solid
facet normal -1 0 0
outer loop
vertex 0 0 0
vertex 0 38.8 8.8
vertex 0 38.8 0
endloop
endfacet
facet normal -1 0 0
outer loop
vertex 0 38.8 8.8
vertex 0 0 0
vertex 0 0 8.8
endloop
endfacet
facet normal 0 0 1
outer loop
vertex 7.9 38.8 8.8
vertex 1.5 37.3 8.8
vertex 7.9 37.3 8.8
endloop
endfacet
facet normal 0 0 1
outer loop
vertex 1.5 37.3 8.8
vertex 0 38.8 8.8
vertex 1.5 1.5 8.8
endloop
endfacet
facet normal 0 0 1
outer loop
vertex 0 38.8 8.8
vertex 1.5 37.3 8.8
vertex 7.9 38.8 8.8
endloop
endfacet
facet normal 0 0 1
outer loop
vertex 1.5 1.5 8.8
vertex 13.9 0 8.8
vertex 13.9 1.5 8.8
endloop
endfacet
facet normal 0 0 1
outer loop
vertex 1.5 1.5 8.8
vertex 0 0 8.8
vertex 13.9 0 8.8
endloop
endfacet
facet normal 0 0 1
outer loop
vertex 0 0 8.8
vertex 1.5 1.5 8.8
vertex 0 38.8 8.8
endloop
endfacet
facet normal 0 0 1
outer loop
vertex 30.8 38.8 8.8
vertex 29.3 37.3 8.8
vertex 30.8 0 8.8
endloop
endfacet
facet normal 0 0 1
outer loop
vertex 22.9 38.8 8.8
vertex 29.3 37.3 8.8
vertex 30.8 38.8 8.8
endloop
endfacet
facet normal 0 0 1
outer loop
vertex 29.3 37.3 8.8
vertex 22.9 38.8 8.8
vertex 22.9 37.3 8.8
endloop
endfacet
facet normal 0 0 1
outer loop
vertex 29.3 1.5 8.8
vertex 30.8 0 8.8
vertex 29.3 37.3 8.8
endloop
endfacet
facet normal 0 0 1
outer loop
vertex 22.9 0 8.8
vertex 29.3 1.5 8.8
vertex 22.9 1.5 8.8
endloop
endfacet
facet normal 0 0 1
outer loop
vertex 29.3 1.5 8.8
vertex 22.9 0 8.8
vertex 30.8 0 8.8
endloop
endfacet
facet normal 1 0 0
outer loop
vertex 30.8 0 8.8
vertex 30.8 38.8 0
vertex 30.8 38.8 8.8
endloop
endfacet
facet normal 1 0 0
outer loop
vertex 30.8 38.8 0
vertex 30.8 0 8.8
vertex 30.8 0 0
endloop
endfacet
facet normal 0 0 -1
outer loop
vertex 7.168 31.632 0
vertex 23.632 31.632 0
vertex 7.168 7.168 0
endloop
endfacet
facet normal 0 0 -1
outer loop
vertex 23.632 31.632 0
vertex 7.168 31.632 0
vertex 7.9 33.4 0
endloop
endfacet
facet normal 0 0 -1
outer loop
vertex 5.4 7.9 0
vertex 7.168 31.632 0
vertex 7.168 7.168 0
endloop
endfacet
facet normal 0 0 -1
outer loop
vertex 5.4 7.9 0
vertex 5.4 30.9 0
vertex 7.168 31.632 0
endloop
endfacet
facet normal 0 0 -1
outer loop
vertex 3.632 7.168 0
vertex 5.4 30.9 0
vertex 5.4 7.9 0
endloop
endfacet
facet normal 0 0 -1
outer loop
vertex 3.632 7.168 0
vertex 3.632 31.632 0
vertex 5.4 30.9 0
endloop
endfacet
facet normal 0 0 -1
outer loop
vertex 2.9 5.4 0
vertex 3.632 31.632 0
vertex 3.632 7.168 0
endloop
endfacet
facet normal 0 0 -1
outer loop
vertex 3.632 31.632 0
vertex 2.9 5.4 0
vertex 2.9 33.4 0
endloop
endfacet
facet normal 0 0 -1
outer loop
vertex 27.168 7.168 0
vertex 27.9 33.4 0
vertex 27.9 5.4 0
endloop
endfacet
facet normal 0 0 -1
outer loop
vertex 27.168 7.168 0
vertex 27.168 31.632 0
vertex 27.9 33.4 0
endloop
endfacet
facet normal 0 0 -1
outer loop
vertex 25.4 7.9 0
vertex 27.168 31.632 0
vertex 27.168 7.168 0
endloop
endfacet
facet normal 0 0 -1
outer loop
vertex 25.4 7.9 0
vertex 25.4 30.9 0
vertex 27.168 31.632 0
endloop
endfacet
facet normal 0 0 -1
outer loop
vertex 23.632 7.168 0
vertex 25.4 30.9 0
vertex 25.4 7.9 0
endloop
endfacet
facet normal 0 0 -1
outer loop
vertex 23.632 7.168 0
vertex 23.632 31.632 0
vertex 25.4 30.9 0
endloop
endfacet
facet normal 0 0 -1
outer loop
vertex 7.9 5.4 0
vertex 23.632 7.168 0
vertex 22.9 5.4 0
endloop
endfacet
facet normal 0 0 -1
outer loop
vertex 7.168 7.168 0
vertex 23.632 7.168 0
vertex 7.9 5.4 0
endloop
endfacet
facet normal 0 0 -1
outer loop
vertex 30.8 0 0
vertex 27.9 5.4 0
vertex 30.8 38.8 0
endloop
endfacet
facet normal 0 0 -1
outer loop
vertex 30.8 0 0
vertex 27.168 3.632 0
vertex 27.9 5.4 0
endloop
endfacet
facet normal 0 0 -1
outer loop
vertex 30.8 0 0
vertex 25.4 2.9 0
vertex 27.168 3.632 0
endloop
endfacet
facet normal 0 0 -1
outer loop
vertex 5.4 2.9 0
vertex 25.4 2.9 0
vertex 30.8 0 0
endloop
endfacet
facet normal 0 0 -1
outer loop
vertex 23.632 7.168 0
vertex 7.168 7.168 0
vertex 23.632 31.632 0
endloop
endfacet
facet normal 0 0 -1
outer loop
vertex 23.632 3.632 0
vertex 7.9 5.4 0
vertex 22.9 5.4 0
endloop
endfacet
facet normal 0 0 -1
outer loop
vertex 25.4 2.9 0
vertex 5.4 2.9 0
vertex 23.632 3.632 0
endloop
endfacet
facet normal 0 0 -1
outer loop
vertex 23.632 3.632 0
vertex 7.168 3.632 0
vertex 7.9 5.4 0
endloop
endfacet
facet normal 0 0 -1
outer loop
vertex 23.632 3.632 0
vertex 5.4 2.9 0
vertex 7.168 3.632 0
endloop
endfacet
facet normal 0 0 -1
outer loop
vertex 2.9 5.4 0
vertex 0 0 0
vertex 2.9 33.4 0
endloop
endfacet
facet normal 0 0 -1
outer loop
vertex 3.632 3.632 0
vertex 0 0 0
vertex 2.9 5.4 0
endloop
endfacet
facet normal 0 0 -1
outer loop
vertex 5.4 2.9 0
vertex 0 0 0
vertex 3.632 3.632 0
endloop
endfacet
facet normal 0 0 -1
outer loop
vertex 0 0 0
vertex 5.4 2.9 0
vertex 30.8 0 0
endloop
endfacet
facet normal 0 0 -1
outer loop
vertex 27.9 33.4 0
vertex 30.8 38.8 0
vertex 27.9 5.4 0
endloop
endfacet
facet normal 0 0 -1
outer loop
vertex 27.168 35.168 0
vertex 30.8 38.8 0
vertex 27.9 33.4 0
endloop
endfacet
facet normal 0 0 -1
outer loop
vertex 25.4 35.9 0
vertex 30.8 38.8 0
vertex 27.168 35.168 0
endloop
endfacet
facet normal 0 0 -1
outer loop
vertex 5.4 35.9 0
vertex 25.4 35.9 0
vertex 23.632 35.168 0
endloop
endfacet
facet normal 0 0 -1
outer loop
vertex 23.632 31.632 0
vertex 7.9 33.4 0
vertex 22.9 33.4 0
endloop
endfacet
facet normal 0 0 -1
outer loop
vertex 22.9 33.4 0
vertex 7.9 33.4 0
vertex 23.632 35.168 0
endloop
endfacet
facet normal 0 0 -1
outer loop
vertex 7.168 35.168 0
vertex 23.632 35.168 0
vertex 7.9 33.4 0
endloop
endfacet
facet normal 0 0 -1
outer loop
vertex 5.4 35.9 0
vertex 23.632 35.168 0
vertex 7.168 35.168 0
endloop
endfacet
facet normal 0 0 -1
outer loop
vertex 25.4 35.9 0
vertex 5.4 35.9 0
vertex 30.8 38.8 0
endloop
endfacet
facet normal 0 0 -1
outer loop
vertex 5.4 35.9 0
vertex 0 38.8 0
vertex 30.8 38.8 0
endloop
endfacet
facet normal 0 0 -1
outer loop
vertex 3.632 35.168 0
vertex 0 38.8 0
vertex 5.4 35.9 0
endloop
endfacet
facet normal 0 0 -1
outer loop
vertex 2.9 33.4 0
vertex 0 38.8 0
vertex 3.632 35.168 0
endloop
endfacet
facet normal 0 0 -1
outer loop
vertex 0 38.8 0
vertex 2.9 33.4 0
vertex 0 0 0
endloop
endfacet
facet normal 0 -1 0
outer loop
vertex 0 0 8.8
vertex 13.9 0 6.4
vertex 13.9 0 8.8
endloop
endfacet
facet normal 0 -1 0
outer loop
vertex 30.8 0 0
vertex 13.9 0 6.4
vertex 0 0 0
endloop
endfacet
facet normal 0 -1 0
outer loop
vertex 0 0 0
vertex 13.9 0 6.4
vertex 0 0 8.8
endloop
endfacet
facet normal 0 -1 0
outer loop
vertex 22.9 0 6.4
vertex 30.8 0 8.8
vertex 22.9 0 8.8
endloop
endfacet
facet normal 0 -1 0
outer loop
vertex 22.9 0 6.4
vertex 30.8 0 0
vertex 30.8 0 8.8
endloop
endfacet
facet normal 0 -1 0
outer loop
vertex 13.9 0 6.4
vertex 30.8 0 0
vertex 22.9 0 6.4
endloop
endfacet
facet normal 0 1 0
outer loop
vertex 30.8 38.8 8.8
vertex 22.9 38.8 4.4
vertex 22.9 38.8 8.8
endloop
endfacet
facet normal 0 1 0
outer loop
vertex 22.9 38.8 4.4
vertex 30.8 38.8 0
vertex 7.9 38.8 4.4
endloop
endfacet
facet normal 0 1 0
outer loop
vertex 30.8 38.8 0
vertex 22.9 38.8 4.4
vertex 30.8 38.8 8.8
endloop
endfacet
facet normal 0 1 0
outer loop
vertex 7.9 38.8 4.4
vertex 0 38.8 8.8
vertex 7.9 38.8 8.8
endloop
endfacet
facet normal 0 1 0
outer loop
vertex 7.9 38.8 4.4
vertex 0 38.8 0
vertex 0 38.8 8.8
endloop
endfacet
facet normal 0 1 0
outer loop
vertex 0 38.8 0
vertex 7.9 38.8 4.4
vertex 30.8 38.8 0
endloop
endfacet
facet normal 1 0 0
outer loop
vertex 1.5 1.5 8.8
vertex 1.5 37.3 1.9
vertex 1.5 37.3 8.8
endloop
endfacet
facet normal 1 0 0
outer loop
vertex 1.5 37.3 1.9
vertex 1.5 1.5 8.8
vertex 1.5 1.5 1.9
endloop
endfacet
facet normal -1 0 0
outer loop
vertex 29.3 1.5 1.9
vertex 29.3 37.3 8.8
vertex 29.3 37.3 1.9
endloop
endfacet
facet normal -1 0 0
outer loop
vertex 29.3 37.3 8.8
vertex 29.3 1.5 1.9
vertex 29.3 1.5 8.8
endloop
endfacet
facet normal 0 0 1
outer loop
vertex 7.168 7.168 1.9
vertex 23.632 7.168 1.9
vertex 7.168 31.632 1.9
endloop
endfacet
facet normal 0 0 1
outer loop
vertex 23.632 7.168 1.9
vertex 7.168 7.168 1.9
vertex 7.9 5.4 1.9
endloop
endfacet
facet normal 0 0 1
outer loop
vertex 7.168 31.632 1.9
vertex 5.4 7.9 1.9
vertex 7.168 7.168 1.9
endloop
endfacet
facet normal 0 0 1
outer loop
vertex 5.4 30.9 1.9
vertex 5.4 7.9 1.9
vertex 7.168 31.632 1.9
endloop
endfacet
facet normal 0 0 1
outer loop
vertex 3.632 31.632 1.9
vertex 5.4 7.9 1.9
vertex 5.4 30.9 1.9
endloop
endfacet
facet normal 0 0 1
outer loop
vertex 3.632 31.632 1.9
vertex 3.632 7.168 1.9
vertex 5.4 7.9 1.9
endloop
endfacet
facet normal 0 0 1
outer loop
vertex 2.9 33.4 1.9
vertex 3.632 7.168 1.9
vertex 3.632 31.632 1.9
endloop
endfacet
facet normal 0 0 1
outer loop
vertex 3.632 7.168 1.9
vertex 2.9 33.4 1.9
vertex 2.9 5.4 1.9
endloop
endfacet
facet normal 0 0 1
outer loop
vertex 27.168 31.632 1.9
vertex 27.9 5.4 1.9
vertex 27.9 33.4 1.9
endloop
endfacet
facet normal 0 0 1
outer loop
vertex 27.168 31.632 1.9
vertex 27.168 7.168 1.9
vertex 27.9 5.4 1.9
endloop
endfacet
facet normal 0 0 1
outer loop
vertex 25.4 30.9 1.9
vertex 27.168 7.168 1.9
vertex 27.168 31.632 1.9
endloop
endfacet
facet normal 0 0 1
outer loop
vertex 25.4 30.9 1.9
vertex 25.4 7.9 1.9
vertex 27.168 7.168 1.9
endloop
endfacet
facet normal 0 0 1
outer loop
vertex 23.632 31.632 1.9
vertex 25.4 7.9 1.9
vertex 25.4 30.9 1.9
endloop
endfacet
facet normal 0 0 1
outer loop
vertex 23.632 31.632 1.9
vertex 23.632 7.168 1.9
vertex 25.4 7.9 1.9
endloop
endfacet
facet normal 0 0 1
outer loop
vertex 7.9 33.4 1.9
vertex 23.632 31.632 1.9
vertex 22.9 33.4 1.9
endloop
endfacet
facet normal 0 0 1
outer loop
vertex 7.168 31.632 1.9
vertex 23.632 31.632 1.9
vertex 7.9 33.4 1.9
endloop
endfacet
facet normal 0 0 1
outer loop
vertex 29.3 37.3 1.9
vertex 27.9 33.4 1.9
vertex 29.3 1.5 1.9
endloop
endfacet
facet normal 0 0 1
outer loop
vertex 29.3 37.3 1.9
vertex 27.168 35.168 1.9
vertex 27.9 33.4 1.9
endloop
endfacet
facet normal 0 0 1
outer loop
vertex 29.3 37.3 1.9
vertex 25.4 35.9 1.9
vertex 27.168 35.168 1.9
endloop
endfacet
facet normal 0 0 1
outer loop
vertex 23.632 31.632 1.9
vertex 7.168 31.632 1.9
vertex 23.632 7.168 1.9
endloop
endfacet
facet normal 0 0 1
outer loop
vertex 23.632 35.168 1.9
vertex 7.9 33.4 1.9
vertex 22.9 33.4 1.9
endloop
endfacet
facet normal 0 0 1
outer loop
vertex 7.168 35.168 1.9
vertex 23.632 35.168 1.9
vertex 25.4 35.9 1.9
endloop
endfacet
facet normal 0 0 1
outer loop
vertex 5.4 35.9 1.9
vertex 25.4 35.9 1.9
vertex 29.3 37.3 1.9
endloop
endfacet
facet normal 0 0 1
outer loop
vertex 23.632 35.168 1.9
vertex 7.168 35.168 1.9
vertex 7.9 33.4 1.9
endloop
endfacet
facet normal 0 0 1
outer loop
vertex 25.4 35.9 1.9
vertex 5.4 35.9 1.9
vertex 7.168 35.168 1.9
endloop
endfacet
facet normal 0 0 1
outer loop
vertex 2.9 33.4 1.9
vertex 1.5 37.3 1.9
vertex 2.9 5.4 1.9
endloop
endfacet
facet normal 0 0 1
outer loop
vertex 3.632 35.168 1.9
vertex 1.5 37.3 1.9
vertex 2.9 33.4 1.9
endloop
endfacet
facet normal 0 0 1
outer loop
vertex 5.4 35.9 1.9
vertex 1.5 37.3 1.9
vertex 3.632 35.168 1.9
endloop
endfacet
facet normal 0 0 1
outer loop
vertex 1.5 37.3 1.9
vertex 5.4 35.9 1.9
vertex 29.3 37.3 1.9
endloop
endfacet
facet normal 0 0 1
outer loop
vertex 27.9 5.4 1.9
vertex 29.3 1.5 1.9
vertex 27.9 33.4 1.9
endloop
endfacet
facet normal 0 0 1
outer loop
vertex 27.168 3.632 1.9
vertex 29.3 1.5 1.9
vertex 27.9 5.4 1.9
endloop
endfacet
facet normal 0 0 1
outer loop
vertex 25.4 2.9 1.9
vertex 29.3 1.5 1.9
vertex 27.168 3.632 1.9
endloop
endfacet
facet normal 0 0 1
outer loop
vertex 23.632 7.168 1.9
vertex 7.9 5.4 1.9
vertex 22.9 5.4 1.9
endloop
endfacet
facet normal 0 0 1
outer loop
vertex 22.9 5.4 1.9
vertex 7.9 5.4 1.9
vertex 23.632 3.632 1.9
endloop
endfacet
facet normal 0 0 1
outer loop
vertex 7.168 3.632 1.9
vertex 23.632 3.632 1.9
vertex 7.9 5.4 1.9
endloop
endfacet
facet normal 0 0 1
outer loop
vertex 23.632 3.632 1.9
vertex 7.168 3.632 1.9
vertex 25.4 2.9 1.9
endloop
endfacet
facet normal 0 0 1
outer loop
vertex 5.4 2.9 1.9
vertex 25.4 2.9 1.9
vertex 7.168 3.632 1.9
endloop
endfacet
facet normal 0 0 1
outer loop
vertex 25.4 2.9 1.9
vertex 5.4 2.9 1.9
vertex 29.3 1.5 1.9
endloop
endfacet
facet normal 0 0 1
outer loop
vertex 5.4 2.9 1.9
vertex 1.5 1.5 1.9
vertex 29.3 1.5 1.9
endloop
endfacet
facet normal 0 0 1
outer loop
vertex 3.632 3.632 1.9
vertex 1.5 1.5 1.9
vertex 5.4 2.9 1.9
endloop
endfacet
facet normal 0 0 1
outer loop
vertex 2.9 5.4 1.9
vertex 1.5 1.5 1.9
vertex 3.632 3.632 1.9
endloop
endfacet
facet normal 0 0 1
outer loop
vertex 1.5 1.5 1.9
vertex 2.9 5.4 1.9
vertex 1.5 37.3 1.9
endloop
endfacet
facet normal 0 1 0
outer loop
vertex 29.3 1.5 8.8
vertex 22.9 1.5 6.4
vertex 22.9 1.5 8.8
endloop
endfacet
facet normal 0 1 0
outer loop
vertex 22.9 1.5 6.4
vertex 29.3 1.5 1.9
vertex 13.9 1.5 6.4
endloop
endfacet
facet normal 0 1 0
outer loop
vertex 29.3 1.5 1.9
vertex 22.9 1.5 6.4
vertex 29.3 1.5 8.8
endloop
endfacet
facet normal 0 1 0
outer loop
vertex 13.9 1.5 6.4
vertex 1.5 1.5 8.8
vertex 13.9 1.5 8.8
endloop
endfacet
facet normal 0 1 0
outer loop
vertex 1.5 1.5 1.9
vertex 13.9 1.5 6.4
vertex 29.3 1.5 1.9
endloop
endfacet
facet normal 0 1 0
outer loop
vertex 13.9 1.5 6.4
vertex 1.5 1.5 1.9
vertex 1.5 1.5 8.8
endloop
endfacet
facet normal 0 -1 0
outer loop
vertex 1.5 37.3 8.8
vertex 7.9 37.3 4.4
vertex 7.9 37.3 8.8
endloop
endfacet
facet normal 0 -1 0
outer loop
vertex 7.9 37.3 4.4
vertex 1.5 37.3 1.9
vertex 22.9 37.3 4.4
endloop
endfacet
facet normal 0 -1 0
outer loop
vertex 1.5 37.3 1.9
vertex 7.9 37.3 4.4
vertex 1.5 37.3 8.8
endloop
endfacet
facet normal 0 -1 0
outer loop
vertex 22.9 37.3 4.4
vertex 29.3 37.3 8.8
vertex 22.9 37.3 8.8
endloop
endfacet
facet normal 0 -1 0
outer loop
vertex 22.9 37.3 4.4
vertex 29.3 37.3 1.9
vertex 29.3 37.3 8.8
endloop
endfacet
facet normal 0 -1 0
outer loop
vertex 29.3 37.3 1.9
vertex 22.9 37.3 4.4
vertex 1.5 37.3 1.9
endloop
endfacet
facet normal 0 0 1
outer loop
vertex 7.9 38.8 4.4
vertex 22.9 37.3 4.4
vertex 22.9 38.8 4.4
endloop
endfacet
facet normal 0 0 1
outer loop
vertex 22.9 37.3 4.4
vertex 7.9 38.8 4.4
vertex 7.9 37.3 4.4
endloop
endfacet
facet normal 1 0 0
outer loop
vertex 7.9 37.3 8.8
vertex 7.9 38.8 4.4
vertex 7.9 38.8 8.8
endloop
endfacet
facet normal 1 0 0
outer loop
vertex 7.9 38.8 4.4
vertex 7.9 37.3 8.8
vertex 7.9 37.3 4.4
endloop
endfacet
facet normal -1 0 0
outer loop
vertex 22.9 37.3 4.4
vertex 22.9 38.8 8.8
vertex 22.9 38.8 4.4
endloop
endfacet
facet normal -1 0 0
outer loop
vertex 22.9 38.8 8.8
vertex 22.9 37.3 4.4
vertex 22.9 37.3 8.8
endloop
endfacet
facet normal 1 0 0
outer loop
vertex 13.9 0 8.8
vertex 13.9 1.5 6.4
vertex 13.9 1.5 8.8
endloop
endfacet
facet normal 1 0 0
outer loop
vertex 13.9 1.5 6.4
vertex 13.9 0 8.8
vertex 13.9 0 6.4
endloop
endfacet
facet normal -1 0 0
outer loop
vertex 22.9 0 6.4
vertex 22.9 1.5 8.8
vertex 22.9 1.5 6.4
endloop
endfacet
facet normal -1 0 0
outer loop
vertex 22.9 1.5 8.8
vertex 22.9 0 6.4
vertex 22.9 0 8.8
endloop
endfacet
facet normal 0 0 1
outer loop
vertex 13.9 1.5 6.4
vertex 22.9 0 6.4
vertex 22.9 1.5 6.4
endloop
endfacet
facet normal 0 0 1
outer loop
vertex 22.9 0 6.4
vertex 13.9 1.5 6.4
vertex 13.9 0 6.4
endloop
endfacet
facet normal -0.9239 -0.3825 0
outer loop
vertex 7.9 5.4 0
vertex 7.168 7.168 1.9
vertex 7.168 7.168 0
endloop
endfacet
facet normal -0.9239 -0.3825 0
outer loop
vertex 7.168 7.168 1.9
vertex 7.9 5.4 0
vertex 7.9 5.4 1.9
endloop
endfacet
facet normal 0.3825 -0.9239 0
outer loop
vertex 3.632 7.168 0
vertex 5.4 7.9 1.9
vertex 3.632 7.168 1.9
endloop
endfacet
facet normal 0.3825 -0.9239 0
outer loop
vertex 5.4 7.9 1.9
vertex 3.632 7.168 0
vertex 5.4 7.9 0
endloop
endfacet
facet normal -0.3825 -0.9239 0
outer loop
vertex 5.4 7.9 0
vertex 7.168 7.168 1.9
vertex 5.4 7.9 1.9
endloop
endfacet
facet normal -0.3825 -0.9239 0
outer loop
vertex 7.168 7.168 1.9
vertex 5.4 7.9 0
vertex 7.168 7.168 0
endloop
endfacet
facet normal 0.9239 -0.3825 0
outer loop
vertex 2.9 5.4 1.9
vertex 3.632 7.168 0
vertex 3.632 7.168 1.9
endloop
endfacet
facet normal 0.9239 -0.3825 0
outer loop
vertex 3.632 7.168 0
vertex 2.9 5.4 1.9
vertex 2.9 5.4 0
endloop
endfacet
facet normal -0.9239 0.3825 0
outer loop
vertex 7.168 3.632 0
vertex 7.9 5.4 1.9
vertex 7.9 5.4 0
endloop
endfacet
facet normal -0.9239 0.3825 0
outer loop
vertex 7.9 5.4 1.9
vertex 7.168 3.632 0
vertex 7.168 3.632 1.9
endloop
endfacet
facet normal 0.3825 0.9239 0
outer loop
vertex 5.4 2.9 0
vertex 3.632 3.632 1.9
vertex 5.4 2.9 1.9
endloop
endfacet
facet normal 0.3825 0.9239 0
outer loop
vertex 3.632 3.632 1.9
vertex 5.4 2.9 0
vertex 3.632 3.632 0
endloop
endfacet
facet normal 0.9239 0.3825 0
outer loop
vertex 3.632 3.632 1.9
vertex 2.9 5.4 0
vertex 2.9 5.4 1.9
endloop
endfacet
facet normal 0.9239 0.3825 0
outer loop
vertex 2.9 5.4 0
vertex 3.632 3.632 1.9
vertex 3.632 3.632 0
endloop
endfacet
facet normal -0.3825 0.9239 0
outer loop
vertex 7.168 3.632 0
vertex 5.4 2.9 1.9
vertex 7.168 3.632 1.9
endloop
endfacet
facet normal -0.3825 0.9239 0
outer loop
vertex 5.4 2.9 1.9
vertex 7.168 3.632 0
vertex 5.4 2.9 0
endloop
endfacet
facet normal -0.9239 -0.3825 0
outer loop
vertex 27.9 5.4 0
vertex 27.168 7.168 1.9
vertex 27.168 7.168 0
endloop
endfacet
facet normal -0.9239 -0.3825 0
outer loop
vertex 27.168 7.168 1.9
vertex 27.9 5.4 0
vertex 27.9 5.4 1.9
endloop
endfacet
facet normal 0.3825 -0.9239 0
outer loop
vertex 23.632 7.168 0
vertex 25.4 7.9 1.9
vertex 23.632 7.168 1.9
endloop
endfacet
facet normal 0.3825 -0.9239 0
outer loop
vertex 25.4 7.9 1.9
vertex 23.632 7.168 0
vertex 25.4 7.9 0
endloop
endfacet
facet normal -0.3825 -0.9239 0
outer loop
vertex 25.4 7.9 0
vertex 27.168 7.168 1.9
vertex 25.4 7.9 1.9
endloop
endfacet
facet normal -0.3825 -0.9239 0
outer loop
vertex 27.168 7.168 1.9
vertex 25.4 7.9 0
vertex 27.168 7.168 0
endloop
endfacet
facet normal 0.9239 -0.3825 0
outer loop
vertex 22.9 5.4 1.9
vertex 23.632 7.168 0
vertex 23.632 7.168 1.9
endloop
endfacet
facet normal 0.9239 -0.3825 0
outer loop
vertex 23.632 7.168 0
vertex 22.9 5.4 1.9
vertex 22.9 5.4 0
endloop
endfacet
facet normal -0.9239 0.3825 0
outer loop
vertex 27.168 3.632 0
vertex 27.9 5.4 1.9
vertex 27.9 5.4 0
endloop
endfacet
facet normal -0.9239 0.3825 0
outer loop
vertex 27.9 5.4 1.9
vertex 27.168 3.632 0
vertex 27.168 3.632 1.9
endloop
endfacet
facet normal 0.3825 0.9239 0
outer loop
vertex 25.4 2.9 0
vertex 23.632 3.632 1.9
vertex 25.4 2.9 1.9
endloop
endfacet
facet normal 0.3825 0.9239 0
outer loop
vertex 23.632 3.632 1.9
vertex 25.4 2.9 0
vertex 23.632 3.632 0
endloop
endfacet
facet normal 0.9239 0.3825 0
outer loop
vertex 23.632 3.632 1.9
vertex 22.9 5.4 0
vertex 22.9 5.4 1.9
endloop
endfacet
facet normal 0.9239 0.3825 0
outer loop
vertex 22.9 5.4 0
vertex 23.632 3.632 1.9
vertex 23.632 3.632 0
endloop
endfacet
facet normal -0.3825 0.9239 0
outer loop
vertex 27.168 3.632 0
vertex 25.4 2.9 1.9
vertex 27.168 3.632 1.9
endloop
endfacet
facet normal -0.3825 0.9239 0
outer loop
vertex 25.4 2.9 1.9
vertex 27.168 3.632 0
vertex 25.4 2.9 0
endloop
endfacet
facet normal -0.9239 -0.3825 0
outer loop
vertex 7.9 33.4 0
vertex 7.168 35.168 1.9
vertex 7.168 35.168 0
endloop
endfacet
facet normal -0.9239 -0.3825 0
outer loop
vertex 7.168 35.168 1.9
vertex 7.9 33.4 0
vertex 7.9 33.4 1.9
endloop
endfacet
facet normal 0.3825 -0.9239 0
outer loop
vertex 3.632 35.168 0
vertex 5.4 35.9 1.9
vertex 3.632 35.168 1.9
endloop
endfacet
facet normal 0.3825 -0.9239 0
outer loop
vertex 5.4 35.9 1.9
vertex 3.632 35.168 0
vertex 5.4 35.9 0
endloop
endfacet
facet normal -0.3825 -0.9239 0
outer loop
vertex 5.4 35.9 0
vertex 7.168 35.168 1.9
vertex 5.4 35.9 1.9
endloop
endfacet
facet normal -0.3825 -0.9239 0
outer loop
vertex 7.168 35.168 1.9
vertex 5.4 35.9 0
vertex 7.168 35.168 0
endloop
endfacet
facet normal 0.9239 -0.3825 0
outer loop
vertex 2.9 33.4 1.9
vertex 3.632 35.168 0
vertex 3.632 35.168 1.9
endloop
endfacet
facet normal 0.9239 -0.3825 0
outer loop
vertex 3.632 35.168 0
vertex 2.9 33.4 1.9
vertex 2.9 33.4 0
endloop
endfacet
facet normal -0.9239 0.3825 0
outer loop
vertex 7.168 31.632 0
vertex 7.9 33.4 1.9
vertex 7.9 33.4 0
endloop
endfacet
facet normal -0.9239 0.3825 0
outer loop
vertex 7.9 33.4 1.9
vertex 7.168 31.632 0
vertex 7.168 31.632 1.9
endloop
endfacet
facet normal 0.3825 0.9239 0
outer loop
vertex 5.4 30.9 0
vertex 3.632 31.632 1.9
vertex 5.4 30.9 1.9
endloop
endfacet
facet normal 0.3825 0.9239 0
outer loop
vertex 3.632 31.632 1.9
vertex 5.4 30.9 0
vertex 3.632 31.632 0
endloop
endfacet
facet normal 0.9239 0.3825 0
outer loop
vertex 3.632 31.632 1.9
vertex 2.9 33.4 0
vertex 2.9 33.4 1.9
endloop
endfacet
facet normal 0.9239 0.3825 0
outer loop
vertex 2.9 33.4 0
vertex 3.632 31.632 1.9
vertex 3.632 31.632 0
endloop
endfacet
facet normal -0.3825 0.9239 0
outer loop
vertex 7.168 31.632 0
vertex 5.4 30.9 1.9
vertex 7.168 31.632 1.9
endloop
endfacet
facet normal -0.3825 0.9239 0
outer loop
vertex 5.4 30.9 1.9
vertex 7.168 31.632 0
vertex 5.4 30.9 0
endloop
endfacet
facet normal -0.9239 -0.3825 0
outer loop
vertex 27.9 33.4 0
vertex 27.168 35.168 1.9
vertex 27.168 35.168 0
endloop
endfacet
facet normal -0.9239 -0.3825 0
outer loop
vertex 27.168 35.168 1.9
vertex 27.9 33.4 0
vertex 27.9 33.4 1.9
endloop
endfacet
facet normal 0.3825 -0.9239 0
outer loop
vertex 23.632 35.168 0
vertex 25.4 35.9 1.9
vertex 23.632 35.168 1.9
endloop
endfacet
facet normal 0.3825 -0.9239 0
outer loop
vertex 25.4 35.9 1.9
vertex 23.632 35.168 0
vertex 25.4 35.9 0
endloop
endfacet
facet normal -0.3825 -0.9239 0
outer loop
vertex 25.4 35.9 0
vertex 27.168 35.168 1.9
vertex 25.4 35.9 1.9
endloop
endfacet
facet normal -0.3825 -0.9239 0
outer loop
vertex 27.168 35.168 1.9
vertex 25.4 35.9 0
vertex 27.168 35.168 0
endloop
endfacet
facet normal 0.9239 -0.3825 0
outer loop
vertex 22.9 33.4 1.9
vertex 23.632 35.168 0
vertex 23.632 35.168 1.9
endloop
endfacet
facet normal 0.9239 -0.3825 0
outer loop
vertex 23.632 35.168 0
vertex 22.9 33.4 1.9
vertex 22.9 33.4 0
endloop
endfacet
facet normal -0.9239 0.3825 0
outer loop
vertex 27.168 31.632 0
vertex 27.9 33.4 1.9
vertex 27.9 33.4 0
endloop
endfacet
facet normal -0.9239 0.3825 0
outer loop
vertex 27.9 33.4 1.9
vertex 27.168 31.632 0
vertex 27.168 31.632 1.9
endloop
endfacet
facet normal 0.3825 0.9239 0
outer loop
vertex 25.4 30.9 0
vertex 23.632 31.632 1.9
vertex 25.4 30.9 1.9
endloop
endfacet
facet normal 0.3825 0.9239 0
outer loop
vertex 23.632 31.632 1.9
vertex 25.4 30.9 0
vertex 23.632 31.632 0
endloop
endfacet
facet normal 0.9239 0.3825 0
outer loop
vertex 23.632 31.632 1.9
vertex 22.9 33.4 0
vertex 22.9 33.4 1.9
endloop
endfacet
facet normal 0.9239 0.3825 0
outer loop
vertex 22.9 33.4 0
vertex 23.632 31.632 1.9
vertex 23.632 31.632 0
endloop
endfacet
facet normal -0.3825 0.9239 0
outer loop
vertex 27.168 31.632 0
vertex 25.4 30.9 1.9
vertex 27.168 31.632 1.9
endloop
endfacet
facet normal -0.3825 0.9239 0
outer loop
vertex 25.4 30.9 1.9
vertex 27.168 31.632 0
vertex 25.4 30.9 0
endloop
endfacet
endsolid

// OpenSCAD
module relay(){
    x=27;
    y=35;
    //base
    color("gray")
    cube([x,y,2.5]);
    //relay
    translate([6,6,2.5])
    color("blue")
    cube([15,19,15.5]);
    //hot conection
    translate([6,27,2.5])
    color("red")
    cube([15,13,8]);
    //logic conection
    translate([12,-4, 4.5])
    color("green")
    cube([9,9,5]);
    //holes
    translate([3.5, 3.5, -2.5])
    cylinder(h=8, r=2.5);
    translate([x-3.5, 3.5,-2.5])
    cylinder(h=8, r=2.5);
    translate([3.5,y-3.5,-2.5])
    cylinder(h=8, r=2.5);
    translate([x-3.5,y-3.5,-2.5])
    cylinder(h=8, r=2.5);
}




module holder(x, y, z, width, cleareance){
    wall = (2*width) + (2*cleareance) ;
    trans = width + cleareance; 
    difference(){
        cube([x + wall, y + wall, z + wall]);
        translate([width , width, trans])
        cube([x + (2*cleareance) , y + (2*cleareance), z + wall+1]);
    }
}

wallWidth = 1.5;
cleareance = .4;
wall = wallWidth + cleareance;

difference(){
    holder(27,35, 5, wallWidth, cleareance);
    translate([wall, wall, wall])
    color("Blue")
    relay();
 }
